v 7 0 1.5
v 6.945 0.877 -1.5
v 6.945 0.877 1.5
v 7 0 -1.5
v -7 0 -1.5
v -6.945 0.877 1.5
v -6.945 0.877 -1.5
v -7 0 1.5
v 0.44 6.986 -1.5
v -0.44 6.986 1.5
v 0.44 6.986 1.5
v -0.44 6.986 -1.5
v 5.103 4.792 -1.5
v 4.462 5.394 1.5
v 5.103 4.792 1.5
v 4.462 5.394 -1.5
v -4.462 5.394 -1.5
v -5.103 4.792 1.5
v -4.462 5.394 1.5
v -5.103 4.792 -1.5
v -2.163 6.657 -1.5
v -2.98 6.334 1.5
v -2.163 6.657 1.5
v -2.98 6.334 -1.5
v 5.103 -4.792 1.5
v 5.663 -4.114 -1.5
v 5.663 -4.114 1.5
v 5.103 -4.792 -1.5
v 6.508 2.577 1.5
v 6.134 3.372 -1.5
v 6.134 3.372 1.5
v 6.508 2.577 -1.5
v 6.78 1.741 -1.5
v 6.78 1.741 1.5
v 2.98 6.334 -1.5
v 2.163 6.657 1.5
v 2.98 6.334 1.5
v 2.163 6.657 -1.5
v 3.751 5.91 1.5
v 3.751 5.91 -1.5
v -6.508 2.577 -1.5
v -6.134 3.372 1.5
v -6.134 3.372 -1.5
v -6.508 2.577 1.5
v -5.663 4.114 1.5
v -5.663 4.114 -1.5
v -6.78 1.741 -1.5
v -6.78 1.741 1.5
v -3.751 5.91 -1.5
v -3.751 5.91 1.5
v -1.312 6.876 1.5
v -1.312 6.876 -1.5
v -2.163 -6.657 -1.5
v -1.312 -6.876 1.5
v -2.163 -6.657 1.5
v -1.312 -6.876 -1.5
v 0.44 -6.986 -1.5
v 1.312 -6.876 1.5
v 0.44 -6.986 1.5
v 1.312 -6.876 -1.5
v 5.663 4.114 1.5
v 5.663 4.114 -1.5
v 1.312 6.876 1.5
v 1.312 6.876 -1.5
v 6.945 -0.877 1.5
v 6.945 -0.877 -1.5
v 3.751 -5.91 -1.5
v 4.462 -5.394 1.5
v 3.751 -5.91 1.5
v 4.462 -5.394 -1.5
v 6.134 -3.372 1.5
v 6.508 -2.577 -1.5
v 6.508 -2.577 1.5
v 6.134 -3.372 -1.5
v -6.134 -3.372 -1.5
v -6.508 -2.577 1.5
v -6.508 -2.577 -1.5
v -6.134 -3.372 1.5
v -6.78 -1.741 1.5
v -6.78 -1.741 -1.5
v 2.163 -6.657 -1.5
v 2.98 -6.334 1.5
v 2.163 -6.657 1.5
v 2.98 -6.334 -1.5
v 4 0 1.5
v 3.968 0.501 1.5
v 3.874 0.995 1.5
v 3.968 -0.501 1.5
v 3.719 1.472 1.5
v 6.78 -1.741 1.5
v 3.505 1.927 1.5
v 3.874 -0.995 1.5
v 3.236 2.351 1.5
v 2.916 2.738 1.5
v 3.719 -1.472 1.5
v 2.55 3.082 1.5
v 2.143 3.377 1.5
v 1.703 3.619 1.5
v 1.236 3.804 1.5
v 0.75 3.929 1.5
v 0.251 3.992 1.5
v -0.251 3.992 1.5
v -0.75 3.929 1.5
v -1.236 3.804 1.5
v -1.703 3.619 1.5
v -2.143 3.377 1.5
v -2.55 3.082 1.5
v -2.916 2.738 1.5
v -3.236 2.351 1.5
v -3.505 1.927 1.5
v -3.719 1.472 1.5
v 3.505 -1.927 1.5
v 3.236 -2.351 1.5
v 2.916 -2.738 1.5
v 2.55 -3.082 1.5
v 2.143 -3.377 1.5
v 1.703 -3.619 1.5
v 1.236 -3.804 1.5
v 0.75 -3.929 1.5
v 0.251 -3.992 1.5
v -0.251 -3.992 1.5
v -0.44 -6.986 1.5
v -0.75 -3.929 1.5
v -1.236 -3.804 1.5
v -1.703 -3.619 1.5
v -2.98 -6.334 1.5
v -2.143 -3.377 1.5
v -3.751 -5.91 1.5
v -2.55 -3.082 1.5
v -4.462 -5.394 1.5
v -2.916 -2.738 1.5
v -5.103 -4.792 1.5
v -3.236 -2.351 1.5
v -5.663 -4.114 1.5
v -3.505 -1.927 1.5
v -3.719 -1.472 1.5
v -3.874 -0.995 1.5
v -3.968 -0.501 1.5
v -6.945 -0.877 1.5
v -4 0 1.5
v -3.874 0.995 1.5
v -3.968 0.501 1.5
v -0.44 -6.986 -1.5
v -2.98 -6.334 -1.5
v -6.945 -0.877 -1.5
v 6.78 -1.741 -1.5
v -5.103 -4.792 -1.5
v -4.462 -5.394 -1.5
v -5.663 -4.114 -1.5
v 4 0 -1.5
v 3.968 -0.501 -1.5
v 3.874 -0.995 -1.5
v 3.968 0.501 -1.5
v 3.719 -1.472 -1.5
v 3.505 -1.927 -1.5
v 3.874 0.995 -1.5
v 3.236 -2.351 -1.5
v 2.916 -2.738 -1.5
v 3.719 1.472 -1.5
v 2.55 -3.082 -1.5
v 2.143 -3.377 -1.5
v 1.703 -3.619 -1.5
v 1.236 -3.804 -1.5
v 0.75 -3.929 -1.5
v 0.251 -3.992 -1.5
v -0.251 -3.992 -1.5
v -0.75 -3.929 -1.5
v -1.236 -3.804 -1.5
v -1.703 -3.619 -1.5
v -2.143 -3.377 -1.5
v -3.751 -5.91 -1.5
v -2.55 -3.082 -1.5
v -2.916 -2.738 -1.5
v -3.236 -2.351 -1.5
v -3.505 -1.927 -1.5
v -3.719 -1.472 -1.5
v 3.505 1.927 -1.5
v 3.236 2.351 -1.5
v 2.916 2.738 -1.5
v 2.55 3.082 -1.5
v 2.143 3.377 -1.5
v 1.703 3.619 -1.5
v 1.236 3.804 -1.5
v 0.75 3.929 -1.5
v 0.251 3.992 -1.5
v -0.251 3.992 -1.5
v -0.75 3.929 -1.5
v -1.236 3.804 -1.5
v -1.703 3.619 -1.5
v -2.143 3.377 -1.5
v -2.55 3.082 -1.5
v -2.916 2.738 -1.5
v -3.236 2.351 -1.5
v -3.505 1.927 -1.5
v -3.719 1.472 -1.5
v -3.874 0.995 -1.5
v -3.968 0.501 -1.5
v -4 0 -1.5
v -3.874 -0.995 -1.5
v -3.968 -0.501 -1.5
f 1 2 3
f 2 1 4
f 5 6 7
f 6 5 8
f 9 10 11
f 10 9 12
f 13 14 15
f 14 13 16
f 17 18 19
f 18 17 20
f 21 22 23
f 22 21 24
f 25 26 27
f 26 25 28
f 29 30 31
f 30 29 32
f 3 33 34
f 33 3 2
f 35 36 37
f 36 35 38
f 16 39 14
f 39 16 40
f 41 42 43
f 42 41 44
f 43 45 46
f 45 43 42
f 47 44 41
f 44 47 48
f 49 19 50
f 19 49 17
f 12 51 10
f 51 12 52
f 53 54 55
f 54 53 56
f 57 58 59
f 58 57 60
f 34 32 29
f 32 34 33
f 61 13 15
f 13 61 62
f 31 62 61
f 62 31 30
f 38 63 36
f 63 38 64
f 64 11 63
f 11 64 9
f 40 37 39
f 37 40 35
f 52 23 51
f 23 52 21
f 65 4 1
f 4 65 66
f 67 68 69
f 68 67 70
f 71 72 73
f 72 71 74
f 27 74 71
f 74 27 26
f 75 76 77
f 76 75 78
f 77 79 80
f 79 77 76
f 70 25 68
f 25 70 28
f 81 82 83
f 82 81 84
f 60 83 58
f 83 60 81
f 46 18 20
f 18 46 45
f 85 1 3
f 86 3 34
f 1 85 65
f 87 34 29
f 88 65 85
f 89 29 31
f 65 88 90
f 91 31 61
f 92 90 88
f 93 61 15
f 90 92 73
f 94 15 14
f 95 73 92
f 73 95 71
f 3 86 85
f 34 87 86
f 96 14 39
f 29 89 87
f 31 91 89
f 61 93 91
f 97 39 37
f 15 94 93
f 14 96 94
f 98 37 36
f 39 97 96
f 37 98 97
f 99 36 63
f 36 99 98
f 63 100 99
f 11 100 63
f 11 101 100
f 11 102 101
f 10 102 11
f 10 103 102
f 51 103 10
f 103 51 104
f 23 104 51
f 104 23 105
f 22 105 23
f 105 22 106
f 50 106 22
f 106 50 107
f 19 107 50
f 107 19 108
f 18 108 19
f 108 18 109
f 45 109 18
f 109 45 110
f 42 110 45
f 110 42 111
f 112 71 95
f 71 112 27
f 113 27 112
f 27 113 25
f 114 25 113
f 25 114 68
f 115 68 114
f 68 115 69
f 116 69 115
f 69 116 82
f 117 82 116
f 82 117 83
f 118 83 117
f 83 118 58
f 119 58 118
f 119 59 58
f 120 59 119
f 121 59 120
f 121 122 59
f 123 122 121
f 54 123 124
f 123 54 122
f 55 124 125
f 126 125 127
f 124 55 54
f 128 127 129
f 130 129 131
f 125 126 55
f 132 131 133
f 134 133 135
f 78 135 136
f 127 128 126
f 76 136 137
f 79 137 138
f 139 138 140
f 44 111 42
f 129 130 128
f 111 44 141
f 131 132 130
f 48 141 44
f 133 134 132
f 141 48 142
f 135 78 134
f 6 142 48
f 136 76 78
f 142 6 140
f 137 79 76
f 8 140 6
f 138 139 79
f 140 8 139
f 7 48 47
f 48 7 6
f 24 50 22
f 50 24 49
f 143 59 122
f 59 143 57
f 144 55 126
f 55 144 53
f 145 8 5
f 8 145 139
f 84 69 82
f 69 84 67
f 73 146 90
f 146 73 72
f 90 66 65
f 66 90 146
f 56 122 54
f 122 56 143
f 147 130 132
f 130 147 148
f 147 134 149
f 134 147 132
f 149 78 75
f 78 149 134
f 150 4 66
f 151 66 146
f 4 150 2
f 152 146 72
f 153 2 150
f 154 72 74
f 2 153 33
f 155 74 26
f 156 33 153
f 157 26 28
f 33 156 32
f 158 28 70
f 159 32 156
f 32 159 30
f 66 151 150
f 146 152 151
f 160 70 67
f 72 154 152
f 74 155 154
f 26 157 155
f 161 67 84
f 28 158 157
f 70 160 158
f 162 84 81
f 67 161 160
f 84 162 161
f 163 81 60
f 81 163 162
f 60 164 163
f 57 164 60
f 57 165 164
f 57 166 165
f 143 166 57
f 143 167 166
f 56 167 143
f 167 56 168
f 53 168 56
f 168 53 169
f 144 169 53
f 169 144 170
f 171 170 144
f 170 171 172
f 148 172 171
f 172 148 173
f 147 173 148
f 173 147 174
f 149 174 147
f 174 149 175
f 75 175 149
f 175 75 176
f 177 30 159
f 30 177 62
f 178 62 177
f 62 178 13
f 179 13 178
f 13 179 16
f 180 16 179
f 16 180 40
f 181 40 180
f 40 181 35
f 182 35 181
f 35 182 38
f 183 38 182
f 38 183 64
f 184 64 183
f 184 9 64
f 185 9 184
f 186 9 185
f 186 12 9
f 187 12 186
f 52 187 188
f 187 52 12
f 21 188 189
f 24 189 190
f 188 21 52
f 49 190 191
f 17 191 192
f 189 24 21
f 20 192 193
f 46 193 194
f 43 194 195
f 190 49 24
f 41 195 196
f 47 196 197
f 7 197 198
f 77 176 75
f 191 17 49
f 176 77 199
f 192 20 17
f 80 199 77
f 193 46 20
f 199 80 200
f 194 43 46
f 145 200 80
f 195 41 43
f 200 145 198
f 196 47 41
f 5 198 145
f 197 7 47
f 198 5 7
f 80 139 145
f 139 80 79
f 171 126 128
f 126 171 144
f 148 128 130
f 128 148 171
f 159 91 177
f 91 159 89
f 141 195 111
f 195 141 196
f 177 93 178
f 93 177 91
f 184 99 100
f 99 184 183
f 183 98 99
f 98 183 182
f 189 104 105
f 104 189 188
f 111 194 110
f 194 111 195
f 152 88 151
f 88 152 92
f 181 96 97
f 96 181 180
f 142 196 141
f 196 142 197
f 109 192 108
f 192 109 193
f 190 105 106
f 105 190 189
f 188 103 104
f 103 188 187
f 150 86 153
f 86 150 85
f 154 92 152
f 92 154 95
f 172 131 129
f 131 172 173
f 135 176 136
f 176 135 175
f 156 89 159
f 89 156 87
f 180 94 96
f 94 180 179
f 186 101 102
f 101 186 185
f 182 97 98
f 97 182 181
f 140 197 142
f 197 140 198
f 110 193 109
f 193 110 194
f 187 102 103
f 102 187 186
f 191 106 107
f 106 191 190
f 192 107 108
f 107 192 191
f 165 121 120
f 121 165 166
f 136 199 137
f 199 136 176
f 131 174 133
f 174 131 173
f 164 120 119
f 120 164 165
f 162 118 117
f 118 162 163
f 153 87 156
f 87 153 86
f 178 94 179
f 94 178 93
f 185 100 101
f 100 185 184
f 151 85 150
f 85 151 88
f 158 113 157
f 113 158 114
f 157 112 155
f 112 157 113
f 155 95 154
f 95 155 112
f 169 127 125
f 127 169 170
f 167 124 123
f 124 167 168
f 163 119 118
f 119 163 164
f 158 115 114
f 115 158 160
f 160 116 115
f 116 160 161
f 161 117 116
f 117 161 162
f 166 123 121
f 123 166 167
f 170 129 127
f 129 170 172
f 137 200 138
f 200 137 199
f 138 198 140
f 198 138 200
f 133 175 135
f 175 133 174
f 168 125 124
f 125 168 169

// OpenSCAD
$fn = 50;


difference() {
	union() {
		translate(v = [0, 0, -1.5000000000]) {
			cylinder(h = 3, r = 7.0000000000);
		}
	}
	union() {
		translate(v = [0, 0, -100.0000000000]) {
			cylinder(h = 200, r = 4.0000000000);
		}
	}
}
